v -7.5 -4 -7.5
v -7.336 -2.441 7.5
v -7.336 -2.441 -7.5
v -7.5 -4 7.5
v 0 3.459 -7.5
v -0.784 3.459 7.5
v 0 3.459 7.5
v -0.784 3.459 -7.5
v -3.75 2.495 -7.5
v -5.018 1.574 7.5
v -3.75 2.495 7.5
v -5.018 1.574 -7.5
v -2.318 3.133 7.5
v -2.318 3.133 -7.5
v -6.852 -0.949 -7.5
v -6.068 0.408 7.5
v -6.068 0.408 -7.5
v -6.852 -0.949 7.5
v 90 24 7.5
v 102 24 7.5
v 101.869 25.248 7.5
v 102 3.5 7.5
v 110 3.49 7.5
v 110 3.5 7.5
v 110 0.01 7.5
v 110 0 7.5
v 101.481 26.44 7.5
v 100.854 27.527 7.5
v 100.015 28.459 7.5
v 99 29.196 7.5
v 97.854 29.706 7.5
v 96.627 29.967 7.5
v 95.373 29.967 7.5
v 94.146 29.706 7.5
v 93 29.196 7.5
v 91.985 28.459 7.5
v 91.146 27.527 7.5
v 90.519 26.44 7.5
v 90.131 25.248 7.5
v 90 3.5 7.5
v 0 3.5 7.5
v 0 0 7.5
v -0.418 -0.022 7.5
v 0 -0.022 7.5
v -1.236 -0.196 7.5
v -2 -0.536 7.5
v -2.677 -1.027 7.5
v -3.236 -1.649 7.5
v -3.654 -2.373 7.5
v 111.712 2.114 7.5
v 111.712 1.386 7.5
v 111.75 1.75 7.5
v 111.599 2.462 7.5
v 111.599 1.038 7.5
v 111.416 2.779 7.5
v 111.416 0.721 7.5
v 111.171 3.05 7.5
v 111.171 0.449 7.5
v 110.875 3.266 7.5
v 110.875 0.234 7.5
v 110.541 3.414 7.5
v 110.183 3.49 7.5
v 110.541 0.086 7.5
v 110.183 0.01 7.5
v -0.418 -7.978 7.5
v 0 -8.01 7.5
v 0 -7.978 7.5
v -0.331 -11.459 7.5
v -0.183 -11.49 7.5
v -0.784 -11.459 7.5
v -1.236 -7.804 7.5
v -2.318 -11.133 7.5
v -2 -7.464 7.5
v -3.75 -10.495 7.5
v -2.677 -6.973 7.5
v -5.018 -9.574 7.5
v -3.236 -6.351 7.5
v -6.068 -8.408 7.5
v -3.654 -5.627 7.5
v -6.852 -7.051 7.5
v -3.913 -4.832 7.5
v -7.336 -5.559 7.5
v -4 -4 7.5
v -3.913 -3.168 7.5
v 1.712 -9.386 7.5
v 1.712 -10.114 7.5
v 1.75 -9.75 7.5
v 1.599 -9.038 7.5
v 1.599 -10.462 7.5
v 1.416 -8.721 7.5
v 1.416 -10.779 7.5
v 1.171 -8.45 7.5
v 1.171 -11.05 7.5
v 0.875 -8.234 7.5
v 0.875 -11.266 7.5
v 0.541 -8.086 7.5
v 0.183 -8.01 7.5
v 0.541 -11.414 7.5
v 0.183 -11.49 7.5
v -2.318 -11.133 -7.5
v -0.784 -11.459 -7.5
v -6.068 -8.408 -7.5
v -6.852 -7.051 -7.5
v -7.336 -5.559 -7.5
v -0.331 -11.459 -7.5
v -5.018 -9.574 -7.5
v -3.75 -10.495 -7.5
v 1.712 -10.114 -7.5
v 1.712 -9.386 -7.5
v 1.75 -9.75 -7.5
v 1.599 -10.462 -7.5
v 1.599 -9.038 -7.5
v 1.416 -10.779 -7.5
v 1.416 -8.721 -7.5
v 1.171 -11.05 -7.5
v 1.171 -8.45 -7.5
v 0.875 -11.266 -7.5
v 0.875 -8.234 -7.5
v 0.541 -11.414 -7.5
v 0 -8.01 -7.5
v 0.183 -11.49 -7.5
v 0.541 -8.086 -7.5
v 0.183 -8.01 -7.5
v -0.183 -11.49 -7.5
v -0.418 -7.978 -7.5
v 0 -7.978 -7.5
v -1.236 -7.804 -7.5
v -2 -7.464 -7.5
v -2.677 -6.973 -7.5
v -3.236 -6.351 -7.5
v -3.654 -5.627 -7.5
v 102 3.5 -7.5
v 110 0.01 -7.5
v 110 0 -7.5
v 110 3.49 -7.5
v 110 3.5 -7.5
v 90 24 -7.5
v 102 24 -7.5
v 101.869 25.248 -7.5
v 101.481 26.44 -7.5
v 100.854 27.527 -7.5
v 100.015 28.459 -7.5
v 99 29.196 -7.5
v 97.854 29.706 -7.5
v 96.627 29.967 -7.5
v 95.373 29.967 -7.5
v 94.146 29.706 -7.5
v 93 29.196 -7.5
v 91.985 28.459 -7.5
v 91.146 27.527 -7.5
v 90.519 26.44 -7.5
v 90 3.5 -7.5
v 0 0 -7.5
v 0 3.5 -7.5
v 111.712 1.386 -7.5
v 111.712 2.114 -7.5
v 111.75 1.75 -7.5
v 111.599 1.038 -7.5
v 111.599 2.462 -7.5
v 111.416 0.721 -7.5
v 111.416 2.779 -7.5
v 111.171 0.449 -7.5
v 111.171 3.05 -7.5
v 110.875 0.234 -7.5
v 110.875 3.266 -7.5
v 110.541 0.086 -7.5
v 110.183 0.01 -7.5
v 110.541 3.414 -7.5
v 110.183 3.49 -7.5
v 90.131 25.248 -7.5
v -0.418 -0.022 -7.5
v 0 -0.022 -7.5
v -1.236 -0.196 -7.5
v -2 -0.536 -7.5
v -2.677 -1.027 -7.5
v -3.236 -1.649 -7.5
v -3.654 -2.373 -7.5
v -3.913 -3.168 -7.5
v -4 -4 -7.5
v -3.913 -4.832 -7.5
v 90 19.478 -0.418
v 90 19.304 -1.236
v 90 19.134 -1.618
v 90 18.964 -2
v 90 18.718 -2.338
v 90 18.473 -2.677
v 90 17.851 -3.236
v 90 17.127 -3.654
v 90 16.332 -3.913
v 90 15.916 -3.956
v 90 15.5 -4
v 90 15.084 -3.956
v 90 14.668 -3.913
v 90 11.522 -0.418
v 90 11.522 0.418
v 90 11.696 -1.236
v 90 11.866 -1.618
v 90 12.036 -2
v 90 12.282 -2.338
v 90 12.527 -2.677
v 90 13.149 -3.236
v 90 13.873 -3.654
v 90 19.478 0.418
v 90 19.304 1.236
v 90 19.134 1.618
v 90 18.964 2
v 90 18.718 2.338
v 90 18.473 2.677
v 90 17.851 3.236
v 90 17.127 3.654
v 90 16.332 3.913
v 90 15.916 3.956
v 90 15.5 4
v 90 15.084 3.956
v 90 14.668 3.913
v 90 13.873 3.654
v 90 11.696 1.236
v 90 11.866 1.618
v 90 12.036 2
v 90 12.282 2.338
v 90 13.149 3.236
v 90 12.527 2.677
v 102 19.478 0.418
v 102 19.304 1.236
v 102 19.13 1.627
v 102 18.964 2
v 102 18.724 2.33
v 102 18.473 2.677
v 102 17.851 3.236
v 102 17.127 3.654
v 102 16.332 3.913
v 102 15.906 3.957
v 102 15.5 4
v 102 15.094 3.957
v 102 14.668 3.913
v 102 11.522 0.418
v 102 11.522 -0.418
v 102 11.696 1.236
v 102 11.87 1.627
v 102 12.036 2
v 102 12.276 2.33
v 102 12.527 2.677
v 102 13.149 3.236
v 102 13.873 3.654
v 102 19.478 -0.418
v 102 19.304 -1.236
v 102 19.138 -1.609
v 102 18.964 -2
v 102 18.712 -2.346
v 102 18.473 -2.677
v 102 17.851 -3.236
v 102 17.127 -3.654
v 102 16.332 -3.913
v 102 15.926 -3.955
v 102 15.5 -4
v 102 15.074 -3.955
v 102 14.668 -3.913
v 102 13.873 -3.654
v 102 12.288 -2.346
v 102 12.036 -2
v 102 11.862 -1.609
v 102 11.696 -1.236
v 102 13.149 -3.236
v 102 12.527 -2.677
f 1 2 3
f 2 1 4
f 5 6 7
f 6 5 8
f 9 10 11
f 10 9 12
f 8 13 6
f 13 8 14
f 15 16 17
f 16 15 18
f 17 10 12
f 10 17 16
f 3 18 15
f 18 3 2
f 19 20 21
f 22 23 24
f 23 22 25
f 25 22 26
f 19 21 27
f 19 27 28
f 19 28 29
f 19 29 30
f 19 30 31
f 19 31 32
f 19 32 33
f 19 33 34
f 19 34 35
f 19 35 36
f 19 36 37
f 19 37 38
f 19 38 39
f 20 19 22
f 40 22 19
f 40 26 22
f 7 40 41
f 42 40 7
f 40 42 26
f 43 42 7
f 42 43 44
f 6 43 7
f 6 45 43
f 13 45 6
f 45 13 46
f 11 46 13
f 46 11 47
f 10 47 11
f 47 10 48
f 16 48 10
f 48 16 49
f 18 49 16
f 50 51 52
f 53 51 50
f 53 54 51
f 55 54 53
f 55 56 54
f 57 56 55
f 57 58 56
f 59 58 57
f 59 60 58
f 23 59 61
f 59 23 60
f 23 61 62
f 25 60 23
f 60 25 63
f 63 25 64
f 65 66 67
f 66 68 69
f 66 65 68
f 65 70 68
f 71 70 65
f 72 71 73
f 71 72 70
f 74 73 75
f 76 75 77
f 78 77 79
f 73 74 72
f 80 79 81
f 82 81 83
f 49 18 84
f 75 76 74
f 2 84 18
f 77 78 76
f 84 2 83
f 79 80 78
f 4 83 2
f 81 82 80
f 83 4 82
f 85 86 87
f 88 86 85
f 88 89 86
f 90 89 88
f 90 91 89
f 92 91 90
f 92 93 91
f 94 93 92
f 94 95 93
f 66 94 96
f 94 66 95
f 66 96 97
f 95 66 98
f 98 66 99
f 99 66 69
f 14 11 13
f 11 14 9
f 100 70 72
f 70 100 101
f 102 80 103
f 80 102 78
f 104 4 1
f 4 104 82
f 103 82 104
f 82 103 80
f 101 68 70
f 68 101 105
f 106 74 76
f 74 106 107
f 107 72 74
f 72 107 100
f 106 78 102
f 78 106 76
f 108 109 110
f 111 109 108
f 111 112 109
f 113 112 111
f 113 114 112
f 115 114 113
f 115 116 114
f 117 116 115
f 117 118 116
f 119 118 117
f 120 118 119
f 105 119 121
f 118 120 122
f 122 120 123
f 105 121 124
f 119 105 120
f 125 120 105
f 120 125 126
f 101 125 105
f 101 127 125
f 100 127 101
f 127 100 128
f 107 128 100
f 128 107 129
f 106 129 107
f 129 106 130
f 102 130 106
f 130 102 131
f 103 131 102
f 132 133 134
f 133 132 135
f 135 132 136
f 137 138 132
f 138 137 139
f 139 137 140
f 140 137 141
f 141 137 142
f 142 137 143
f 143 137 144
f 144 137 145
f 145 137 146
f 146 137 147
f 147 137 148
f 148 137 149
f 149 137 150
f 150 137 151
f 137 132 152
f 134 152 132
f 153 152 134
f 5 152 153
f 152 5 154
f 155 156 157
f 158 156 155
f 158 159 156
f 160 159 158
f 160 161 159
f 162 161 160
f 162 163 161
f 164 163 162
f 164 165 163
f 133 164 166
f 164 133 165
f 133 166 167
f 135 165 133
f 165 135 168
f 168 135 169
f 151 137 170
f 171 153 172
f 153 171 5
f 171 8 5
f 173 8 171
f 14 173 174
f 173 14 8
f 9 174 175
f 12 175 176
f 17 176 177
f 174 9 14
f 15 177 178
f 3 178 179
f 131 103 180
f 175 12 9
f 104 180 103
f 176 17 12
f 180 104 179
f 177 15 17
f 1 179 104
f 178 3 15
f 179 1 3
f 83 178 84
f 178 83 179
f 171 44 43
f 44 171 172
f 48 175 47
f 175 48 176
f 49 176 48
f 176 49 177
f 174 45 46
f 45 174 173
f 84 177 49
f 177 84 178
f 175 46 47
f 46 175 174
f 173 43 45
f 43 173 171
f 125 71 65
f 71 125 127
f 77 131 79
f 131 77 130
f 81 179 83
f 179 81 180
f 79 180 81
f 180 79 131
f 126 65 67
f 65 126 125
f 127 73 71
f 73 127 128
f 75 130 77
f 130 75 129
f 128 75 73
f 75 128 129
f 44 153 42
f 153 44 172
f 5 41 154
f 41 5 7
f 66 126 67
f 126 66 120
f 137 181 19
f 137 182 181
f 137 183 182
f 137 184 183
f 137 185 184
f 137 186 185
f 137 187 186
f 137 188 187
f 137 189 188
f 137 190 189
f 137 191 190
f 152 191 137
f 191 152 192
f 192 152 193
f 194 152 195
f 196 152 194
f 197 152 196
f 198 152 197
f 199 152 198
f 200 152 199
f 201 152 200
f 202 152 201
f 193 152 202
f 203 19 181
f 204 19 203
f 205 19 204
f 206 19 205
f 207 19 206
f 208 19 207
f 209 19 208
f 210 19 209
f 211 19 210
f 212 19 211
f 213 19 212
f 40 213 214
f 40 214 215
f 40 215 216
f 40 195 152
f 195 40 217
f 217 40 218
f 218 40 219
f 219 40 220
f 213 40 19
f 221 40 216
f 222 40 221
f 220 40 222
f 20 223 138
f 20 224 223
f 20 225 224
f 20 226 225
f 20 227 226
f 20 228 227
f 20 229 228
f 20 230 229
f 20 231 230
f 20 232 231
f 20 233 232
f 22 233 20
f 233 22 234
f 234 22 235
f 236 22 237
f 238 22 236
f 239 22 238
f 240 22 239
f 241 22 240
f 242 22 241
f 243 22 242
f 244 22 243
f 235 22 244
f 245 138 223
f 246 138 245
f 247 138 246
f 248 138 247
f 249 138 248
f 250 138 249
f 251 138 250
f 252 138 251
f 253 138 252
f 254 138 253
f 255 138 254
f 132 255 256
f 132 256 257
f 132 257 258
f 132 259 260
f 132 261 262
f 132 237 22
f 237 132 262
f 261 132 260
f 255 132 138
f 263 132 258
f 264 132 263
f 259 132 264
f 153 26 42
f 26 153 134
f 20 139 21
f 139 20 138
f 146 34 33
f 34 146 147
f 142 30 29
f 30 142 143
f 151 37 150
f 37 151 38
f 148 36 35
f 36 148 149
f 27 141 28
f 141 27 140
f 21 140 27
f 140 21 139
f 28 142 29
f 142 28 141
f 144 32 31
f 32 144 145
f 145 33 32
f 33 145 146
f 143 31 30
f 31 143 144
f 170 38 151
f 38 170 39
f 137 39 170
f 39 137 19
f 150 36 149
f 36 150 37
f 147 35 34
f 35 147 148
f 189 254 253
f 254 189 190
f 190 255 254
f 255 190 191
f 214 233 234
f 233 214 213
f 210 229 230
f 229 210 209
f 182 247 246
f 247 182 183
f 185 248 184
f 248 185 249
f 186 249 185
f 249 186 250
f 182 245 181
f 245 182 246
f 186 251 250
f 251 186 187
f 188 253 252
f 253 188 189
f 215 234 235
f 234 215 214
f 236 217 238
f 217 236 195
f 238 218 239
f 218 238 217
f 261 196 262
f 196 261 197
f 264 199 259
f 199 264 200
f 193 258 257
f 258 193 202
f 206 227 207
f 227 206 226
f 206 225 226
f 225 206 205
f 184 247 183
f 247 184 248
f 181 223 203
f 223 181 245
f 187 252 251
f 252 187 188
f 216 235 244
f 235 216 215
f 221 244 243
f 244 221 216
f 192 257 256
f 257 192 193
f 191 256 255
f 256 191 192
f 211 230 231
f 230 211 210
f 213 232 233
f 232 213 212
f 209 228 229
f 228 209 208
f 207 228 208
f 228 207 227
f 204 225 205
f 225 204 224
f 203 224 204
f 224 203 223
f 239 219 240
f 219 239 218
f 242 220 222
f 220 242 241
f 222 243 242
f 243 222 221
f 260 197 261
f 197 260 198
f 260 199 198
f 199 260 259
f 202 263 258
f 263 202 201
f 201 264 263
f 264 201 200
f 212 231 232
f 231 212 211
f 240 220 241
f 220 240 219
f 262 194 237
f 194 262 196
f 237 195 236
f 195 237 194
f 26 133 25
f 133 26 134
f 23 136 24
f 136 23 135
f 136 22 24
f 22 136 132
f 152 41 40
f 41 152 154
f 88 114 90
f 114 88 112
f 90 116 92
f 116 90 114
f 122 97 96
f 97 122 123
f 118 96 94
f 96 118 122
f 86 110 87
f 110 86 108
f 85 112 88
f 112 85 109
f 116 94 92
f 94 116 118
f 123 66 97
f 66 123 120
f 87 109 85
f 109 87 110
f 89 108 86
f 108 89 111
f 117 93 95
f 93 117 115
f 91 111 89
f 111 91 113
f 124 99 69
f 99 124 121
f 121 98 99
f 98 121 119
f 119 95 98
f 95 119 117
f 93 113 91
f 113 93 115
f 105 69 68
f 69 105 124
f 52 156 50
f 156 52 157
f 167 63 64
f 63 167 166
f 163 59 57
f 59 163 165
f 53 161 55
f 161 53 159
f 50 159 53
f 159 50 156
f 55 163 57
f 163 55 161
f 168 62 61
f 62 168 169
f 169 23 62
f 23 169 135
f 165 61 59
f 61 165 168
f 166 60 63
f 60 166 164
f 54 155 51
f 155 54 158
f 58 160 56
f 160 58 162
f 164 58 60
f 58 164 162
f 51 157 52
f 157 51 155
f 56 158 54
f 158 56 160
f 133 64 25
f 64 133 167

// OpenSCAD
$fn = 30;

L = 90;

translate([0,-8/2,0]) difference() {
	union() {
		cylinder(d=15, h=15, center=true);
	}
	
	cylinder(d=8, h=100, center=true);
	translate([0,-50,-50]) cube([100, 100, 100]);
}

translate([0,0,-15/2]) cube([L+20, 3.5, 15]);

translate([0,-8-3.5/2,0]) cylinder(d=3.5, h=15, center=true);
translate([L+20,+3.5/2,0]) cylinder(d=3.5, h=15, center=true);

translate([L,0,0]) difference() {
	translate([12/2, 24/2, 0]) union() {
		cube([12, 24, 15], center=true);
		translate([0, 24/2,   0]) cylinder(d=12, h=15, center=true);
	}
	translate([0,3.5+8/2+8,0]) rotate([0,90,0]) cylinder(d=8, h=1000, center=true);
}
